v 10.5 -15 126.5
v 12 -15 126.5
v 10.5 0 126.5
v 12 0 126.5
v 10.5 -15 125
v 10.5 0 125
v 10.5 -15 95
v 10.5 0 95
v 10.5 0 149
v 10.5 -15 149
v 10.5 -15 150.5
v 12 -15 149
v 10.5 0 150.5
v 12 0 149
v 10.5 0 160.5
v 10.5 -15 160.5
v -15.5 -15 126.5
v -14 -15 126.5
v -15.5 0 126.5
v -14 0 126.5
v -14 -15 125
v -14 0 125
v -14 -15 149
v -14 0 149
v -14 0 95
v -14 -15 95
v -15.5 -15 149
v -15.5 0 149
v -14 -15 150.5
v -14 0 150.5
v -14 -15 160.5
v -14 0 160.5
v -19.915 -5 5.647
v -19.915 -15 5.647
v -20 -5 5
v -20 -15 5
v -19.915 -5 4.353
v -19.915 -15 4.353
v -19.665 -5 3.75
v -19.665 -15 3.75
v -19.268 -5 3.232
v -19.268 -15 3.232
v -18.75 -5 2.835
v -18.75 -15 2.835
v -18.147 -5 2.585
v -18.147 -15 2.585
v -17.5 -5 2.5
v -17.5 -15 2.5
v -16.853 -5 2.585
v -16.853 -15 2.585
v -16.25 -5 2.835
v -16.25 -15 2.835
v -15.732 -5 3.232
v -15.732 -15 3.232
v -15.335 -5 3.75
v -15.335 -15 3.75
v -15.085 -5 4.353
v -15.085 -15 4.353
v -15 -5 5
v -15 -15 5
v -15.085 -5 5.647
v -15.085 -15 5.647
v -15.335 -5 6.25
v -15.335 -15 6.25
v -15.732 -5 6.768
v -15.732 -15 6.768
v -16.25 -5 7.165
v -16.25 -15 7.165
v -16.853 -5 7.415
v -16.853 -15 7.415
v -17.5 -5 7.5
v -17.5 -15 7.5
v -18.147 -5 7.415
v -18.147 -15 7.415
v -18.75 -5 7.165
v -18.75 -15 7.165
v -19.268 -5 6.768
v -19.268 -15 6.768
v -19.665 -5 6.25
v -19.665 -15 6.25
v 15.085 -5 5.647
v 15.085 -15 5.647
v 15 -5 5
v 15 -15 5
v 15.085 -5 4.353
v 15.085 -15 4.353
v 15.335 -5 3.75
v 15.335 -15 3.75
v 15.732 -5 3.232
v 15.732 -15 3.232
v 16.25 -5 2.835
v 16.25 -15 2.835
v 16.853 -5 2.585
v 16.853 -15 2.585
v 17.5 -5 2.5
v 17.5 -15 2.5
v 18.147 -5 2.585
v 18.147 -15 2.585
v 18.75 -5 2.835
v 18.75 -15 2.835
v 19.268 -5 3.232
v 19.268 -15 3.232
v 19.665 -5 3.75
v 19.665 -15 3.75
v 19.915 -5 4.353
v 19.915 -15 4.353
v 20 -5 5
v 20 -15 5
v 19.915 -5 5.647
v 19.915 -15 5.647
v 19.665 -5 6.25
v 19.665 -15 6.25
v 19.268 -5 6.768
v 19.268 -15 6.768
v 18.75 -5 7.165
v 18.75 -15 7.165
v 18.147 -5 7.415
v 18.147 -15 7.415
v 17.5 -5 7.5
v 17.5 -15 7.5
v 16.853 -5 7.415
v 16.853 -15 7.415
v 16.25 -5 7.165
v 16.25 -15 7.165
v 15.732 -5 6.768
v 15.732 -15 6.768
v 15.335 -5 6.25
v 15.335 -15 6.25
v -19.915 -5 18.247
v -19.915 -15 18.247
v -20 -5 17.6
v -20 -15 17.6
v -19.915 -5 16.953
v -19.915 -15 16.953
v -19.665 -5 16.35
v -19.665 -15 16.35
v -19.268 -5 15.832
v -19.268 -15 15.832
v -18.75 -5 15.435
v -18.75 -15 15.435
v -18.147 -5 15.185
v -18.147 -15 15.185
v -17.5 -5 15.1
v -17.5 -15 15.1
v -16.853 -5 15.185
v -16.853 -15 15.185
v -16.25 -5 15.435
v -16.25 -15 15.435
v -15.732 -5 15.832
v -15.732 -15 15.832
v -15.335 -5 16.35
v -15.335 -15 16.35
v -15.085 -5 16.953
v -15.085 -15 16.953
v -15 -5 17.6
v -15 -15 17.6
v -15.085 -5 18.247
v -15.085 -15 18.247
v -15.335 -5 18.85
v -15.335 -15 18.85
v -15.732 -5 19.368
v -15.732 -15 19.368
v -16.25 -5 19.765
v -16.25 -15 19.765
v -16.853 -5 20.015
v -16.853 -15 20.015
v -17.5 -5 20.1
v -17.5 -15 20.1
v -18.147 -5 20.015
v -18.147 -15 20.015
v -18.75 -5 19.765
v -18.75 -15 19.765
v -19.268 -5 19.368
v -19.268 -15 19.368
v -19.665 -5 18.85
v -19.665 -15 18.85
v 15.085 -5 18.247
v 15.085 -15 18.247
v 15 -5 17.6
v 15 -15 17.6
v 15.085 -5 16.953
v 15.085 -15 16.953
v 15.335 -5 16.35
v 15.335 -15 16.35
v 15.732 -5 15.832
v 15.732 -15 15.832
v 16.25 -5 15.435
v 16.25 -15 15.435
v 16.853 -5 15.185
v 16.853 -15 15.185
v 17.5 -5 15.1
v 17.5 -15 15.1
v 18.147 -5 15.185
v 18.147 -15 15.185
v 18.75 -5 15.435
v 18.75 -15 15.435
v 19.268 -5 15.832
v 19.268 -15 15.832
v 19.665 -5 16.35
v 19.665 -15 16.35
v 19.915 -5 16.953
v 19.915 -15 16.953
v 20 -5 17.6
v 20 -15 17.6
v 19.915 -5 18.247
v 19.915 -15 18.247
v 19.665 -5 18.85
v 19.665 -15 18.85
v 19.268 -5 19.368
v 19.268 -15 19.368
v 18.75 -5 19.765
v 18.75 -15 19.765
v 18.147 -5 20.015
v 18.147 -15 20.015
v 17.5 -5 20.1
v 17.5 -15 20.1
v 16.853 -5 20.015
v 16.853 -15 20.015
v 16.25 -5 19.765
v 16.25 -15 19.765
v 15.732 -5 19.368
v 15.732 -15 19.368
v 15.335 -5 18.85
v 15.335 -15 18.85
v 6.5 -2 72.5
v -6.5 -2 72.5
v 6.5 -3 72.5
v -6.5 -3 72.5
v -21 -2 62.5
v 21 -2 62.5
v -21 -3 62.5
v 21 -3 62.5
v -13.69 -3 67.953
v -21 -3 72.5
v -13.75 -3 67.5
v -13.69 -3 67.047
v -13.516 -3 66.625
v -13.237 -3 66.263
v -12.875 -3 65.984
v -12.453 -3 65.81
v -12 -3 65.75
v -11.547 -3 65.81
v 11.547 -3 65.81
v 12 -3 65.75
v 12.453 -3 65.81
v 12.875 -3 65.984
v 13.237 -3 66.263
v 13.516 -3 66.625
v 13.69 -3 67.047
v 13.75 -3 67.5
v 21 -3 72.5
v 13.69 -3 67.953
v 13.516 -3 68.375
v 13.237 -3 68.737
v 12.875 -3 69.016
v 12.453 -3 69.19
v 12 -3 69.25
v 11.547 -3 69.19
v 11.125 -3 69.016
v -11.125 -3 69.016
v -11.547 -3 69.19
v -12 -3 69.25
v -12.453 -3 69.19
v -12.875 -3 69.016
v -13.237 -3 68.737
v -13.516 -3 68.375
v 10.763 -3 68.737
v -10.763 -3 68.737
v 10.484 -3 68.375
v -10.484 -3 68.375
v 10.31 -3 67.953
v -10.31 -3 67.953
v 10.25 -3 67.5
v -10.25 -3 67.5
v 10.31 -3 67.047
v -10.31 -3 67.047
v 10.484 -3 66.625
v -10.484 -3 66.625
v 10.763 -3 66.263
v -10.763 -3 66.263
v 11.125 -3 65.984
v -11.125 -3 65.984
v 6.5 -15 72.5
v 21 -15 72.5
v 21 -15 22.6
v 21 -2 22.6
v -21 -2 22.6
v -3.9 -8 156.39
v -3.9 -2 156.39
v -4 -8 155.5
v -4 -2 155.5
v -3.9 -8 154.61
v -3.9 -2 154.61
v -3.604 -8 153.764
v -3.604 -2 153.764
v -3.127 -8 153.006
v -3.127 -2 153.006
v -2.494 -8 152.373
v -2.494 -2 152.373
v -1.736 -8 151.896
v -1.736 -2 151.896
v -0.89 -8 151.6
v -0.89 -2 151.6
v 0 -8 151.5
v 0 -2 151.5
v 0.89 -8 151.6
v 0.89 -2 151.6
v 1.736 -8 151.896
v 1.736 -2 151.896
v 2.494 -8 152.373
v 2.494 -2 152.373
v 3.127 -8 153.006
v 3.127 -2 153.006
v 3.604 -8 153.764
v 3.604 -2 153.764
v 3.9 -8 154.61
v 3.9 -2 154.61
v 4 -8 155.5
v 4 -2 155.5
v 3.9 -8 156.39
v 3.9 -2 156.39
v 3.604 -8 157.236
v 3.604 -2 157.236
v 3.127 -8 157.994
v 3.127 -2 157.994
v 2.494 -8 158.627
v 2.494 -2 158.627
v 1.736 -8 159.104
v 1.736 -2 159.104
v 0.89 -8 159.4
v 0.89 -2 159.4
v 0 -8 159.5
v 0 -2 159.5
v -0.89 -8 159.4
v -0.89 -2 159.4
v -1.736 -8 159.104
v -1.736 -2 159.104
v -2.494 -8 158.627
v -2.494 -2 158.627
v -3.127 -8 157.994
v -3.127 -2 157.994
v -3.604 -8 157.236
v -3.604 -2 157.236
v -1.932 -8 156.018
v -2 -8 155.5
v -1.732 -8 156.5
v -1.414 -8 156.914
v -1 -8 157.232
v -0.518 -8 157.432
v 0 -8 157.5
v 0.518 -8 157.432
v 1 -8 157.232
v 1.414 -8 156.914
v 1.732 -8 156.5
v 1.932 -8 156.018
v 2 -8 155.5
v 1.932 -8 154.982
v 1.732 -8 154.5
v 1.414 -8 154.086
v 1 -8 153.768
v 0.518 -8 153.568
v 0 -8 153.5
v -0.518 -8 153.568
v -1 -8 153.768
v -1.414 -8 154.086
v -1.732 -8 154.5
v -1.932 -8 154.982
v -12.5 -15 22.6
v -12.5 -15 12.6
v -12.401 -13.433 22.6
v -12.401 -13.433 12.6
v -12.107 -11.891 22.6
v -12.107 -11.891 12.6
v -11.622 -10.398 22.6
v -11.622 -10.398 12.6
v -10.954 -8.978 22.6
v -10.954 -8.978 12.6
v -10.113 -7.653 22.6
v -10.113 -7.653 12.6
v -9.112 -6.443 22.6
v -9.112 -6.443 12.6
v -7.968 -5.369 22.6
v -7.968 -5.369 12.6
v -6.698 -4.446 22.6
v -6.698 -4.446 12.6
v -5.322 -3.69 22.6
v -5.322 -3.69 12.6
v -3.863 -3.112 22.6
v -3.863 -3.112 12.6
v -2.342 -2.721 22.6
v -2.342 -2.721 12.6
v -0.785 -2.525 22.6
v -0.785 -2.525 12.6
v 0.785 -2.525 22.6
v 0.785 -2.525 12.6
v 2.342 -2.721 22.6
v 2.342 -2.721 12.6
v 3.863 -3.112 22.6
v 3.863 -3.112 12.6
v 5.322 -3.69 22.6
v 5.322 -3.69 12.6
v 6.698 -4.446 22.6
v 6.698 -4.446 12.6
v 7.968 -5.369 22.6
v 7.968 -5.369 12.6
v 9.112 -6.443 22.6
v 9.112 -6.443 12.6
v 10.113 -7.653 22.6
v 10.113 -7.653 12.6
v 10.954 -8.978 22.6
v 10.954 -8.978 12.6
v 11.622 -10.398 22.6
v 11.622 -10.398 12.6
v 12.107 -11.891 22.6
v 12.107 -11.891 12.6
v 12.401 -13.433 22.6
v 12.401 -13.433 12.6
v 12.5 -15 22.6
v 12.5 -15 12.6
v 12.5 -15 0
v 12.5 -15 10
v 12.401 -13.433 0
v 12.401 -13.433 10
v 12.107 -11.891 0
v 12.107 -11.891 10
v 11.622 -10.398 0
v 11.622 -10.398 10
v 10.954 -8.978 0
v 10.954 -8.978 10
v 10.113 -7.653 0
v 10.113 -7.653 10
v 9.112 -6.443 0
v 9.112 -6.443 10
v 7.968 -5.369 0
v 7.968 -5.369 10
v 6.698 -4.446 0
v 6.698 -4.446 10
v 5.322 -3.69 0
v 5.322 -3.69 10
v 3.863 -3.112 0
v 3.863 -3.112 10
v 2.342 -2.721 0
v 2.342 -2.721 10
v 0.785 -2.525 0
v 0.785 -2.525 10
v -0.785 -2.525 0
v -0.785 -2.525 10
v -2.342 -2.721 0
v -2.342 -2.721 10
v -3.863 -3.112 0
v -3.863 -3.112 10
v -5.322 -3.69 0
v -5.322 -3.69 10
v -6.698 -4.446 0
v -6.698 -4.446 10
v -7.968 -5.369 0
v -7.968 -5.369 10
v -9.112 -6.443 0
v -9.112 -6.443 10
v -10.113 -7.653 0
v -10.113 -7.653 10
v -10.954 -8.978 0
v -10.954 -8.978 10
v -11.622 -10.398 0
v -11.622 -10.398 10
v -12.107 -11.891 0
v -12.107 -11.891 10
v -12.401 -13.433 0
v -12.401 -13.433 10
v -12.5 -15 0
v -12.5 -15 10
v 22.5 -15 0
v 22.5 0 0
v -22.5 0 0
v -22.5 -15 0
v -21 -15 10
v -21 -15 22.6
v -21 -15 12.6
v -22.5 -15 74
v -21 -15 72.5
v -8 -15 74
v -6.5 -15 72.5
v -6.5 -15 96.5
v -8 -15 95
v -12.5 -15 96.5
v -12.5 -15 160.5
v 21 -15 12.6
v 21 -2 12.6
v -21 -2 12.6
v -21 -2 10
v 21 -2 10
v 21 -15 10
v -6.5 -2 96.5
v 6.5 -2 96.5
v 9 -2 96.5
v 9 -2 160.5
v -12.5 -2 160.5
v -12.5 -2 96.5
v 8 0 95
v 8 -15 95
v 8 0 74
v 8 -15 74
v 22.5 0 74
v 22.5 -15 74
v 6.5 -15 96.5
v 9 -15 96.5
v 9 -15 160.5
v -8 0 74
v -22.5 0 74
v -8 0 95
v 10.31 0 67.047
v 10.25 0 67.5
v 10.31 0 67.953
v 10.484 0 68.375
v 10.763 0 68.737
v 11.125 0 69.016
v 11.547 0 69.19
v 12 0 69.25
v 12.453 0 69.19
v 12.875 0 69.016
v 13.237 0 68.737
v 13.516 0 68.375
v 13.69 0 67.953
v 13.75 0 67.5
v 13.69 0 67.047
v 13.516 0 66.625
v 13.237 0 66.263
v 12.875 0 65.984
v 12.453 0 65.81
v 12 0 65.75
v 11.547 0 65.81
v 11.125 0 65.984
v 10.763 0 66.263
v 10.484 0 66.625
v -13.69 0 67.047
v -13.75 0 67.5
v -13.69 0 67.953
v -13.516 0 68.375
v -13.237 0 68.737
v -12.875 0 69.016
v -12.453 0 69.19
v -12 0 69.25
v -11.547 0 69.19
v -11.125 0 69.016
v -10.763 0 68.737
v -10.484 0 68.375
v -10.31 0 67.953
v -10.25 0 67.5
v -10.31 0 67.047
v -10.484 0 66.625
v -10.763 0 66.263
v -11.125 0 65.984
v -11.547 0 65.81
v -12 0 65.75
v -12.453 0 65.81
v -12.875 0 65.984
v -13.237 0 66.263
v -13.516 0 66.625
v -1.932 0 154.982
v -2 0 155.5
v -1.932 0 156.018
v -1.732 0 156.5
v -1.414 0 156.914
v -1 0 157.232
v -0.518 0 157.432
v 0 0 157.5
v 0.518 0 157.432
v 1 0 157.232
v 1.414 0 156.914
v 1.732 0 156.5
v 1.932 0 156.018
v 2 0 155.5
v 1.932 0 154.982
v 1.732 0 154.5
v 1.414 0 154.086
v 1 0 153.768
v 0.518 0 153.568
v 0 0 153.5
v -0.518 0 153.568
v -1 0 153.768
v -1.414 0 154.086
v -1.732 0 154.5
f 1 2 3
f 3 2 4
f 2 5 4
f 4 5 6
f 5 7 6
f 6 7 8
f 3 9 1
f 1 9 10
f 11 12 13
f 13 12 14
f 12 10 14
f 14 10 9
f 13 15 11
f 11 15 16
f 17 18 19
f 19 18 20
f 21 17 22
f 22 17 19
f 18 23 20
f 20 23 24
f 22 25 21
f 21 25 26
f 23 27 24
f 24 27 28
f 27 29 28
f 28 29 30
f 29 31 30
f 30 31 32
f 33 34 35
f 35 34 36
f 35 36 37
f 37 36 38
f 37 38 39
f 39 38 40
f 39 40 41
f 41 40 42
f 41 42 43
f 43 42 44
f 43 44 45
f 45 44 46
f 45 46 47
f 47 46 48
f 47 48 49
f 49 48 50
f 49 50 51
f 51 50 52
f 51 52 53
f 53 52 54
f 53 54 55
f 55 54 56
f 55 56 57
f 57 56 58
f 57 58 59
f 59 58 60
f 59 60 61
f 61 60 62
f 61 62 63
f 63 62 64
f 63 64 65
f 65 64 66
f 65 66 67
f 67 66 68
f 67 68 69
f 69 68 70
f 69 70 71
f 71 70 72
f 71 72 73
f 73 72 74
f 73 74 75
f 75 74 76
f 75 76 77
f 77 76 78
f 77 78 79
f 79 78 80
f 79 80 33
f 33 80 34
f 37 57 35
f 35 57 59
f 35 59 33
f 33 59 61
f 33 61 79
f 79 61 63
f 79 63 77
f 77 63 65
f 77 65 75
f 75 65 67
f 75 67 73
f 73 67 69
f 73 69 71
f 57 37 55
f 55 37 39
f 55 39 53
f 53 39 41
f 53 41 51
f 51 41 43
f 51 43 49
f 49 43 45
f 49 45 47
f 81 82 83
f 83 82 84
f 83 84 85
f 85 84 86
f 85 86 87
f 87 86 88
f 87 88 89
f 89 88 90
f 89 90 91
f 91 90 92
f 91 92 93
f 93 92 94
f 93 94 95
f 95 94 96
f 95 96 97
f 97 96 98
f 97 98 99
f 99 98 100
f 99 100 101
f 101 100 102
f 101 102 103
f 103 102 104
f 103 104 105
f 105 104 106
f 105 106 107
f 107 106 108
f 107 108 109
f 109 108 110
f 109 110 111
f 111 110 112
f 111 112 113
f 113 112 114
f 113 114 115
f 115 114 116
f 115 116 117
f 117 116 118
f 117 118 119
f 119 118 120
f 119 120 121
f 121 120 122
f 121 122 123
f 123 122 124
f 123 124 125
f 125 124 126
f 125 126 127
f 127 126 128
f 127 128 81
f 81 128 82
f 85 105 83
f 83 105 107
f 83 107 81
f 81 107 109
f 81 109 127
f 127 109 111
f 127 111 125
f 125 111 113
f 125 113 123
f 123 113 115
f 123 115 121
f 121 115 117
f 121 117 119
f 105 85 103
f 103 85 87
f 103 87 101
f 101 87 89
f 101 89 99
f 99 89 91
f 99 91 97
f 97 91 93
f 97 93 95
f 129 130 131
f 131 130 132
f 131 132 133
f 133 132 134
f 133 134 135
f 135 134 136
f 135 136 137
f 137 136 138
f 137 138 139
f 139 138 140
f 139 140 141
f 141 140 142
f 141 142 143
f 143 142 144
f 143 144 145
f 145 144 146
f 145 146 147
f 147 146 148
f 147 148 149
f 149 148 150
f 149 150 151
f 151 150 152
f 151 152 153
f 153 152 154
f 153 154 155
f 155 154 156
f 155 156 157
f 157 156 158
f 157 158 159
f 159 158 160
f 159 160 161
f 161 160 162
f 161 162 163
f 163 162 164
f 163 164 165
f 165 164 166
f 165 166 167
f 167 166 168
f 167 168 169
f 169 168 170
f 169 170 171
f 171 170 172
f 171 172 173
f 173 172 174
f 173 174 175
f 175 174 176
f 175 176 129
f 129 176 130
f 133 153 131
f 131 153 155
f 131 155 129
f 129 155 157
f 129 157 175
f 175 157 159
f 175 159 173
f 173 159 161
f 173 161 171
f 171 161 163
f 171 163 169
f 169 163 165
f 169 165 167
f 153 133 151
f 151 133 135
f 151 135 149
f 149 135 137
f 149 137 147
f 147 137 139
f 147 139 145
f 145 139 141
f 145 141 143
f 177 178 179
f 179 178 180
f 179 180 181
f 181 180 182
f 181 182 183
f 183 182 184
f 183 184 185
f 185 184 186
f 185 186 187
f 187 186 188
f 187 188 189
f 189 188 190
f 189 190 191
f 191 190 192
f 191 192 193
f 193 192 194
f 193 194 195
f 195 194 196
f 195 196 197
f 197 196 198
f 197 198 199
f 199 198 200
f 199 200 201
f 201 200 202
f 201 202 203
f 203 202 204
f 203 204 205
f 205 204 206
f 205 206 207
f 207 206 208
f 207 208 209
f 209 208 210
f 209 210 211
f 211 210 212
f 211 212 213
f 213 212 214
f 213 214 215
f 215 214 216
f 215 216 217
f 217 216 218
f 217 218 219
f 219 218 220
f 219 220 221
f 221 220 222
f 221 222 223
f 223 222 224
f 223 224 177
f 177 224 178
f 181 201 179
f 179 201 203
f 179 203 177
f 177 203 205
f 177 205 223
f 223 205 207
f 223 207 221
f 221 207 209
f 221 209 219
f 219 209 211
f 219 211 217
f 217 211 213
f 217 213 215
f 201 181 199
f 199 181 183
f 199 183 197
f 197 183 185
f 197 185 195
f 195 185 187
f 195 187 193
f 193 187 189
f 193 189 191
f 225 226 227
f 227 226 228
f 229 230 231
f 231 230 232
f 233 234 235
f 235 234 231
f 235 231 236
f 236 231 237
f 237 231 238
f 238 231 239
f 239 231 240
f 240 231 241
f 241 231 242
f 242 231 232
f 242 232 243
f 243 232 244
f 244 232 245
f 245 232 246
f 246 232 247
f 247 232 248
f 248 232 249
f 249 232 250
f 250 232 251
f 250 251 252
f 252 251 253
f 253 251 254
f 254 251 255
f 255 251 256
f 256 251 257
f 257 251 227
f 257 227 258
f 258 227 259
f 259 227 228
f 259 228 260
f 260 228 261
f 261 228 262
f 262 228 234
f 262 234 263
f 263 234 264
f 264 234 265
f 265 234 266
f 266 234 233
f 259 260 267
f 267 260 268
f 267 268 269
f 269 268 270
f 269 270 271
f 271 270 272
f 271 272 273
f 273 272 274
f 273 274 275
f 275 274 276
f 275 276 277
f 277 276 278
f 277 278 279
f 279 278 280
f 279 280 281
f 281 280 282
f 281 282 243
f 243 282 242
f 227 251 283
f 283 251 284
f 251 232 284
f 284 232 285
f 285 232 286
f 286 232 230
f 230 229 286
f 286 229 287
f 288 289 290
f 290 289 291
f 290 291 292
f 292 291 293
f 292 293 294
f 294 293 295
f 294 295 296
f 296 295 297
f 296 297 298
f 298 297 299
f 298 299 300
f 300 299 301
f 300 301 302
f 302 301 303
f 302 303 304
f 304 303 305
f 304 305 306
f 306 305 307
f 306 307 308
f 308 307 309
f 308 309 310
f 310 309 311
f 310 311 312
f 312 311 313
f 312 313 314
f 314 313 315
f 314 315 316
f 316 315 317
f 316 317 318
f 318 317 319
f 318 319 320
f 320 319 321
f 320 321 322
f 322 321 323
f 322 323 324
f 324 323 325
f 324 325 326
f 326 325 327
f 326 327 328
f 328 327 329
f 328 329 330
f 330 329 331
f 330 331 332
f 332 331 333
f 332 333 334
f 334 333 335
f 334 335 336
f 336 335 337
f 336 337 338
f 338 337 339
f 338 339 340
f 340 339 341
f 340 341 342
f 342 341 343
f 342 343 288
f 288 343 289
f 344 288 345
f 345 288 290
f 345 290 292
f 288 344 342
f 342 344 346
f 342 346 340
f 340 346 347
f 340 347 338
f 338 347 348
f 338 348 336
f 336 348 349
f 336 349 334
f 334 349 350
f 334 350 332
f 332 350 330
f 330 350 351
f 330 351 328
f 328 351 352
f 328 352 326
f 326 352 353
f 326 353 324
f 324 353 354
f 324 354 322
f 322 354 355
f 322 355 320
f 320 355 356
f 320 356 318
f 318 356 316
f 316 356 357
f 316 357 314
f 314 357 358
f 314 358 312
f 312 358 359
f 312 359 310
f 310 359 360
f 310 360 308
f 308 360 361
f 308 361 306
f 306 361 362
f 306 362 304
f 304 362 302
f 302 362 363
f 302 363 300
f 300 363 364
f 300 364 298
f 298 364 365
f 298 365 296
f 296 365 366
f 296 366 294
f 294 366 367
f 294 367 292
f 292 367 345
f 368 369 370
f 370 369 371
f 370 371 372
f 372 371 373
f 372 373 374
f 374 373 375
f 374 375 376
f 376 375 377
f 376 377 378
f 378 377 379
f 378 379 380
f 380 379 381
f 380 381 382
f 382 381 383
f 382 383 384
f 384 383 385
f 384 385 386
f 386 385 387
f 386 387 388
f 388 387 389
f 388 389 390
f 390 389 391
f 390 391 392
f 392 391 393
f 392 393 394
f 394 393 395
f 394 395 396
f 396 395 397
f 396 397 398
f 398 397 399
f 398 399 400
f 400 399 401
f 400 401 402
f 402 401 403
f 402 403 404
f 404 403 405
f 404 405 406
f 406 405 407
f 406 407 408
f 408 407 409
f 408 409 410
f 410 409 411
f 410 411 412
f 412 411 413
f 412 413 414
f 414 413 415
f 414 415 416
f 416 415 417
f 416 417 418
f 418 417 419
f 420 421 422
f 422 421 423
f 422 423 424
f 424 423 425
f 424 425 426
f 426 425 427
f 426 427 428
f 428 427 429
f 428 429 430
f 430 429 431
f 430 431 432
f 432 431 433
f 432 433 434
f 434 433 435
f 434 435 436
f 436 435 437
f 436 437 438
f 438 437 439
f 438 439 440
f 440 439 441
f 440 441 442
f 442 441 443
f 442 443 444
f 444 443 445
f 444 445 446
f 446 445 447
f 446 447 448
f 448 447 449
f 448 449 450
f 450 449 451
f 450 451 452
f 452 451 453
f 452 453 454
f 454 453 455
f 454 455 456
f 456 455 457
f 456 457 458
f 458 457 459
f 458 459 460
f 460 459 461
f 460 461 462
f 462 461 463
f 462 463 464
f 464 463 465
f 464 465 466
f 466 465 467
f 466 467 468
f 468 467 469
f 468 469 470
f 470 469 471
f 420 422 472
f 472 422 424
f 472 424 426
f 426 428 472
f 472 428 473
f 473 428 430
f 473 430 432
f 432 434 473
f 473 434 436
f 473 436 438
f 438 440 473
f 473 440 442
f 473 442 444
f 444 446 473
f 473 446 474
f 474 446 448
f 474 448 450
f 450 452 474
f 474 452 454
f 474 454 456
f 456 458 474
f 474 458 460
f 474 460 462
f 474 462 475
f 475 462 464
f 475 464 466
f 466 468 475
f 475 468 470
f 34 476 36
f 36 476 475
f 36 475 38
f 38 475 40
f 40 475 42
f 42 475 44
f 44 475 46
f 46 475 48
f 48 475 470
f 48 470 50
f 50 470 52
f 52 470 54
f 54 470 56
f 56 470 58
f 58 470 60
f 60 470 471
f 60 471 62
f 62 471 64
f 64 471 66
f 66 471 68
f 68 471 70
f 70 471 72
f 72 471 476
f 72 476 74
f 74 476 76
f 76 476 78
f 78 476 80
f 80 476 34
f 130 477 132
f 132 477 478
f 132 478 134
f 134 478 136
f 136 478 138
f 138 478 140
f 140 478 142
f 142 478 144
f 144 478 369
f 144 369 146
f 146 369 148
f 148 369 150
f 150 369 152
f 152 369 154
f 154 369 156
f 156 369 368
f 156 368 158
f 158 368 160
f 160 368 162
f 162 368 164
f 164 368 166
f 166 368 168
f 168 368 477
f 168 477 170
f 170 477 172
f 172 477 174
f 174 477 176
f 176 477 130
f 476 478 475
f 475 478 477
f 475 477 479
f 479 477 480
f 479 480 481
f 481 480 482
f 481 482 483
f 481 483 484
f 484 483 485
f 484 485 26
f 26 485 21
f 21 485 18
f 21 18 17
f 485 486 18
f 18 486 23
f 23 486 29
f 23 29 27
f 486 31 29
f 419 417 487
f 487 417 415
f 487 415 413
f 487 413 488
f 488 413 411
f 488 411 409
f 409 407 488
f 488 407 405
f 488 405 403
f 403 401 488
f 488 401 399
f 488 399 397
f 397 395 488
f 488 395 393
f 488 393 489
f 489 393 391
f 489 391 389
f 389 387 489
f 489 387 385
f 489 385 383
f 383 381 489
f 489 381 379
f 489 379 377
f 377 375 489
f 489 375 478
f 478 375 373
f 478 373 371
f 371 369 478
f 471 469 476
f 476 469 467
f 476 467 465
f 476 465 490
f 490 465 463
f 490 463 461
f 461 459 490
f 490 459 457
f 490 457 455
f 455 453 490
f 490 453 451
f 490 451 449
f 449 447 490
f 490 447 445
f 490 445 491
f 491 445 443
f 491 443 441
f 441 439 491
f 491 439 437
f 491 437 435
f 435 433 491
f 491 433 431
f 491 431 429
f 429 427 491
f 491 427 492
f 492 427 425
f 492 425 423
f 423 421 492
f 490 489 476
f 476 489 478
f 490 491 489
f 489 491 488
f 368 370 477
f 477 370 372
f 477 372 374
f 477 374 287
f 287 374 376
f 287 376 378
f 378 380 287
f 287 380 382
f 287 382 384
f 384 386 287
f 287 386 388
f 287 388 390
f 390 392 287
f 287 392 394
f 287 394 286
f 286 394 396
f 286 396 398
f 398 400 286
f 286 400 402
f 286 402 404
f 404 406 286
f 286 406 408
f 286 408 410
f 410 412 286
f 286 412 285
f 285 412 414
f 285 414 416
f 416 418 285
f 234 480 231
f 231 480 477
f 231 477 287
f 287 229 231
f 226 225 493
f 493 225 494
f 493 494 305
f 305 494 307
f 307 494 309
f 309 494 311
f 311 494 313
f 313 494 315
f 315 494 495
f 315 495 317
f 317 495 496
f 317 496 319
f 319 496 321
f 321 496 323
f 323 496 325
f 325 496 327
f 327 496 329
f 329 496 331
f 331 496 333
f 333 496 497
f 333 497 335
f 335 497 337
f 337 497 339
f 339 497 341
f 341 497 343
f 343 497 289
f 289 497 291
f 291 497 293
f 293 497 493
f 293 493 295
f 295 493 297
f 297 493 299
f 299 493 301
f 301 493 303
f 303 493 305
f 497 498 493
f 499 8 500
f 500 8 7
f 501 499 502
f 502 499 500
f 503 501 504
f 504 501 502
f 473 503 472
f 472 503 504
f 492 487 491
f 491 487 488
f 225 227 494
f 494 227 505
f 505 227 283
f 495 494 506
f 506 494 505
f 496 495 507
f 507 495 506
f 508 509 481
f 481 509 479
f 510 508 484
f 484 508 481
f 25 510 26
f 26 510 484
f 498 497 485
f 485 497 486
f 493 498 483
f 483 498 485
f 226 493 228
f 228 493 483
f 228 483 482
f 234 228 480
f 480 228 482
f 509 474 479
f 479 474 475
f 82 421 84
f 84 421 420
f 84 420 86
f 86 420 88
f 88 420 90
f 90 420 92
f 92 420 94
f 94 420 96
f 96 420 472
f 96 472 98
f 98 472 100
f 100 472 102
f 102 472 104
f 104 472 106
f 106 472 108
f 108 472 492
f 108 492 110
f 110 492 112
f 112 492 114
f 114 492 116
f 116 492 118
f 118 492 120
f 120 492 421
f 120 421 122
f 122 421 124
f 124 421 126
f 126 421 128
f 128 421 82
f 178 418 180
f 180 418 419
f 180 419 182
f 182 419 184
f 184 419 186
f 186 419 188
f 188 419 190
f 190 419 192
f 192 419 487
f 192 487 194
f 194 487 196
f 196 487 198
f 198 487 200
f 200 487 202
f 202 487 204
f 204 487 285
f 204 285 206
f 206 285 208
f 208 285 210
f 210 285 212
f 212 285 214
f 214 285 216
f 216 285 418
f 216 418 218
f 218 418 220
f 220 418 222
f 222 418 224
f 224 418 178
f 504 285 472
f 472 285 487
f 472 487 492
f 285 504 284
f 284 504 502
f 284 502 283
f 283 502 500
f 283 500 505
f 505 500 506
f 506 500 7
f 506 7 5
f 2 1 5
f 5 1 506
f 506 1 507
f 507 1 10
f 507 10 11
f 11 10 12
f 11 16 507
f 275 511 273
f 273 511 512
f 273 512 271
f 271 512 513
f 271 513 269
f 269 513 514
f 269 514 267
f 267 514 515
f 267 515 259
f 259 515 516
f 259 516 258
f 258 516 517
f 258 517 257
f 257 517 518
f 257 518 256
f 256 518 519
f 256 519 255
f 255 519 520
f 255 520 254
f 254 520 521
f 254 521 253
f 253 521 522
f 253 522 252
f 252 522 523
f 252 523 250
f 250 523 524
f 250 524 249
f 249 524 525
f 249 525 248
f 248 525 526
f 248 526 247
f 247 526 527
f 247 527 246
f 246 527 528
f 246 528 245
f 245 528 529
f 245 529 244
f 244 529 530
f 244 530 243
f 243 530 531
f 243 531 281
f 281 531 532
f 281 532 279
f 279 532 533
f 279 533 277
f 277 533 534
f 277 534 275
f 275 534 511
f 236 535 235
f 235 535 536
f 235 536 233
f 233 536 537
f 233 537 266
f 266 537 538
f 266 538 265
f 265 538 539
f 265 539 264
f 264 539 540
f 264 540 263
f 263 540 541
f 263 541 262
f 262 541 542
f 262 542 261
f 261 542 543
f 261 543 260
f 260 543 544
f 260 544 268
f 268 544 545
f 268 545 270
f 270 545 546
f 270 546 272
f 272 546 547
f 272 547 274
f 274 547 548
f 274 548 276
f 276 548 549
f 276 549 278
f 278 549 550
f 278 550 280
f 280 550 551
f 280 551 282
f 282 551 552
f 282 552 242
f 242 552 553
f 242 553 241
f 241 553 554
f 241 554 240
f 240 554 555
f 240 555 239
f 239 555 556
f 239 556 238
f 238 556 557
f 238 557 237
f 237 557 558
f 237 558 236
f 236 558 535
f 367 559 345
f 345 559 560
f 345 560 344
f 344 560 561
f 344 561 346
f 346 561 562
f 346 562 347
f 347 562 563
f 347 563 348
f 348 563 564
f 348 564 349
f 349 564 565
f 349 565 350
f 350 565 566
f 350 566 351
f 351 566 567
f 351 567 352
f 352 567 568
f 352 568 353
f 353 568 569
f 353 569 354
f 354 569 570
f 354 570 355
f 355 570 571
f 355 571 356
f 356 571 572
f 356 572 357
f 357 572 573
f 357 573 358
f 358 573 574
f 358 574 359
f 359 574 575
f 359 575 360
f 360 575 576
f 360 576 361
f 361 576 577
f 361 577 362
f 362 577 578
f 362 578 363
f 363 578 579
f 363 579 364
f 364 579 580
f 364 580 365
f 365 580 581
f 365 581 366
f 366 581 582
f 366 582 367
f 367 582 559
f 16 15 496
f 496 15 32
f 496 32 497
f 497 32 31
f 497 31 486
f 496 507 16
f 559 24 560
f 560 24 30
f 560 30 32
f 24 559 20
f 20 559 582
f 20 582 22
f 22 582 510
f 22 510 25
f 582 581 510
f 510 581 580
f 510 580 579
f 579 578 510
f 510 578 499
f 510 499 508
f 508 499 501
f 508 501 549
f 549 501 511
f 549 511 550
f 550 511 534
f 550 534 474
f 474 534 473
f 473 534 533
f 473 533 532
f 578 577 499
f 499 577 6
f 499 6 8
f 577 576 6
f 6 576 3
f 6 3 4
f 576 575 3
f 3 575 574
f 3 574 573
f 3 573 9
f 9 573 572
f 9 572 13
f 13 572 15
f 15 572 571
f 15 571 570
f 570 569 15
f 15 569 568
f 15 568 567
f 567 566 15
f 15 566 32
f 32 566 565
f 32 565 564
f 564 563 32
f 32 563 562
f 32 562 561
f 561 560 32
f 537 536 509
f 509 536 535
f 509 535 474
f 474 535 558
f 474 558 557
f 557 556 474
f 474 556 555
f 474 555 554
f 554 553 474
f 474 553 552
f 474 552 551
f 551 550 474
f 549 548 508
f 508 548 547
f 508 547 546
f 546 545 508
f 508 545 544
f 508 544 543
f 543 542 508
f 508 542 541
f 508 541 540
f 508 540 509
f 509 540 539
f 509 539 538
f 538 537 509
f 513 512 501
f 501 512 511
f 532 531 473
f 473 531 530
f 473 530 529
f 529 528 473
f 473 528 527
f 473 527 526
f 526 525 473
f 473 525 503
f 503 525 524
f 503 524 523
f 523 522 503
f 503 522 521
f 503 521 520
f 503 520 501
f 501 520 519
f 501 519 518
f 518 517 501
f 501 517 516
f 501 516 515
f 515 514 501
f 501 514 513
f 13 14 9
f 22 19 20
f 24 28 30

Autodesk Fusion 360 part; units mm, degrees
sketch "スケッチ1" plane through (0, 0, 0) normal (0, 1, 0) x (1, 0, 0)
  line L0 (-21, 0) -> (21, 0)
  line L1 (21, 0) -> (21, -72.5)
  line L2 (21, -72.5) -> (-21, -72.5)
  line L3 (-21, -72.5) -> (-21, 0)
  line L4 (6.5, -72.5) -> (-6.5, -72.5)
  line L5 (-6.5, -72.5) -> (-6.5, -96.5)
  line L6 (-6.5, -96.5) -> (6.5, -96.5)
  line L7 (6.5, -96.5) -> (6.5, -72.5)
  line L8 (-12.5, -160.5) -> (9, -160.5)
  line L9 (9, -160.5) -> (9, -96.5)
  line L10 (9, -96.5) -> (-12.5, -96.5)
  line L11 (-12.5, -96.5) -> (-12.5, -160.5)
  line L12 (-21, -67.5) -> (21, -67.5) construction
  circle A0 centre (-12, -67.5) radius 1.75
  circle A1 centre (12, -67.5) radius 1.75
  line L13 (0, -1.75) -> (0, -22.5)
  circle A2 centre (0, -155.5) radius 2
  dimension "d1" = 42
  dimension "d2" = 5
  dimension "d3" = 3.5
  dimension "d4" = 3.5
  dimension "d5" = 24
  dimension "d6" = 72.5
  dimension "d7" = 13
  dimension "d8" = 2.5
  dimension "d9" = 6
  dimension "d10" = 24
  dimension "d11" = 64
  dimension "d12" = 4
  dimension "d13" = 5
extrude "押し出し1" add sketch "スケッチ1" against normal blind 2 makes body 1
sketch "スケッチ2" plane through (0, 0, 0) normal (0, 1, 0) x (-1, 0, 0)
  circle A0 centre (12, 67.5) radius 1.75
  circle A1 centre (-12, 67.5) radius 1.75
  circle A2 centre (0, 155.5) radius 2
  line L0 (6.5, 72.5) -> (6.5, 96.5)
  line L1 (6.5, 96.5) -> (12.5, 96.5)
  line L2 (12.5, 96.5) -> (12.5, 160.5)
  line L3 (12.5, 160.5) -> (-9, 160.5)
  line L4 (-9, 160.5) -> (-9, 96.5)
  line L5 (-9, 96.5) -> (-6.5, 96.5)
  line L6 (-6.5, 96.5) -> (-6.5, 72.5)
  line L7 (-6.5, 72.5) -> (-21, 72.5)
  line L8 (-21, 72.5) -> (-21, 0)
  line L9 (-21, 0) -> (21, 0)
  line L10 (21, 0) -> (21, 72.5)
  line L11 (21, 72.5) -> (6.5, 72.5)
  line L12 (-21, 0) -> (-22.5, 0)
  line L13 (-22.5, 0) -> (-22.5, 74)
  line L14 (-22.5, 74) -> (-8, 74)
  line L15 (-8, 74) -> (-8, 95)
  line L16 (-8, 95) -> (-10.5, 95)
  line L17 (-10.5, 95) -> (-10.5, 160.5)
  line L18 (-10.5, 160.5) -> (-9, 160.5)
  line L19 (12.5, 160.5) -> (14, 160.5)
  line L20 (14, 160.5) -> (14, 95)
  line L21 (14, 95) -> (8, 95)
  line L22 (8, 95) -> (8, 74)
  line L23 (8, 74) -> (22.5, 74)
  line L24 (22.5, 74) -> (22.5, 0)
  line L25 (22.5, 0) -> (21, 0)
  dimension "d16" = 1.5
  dimension "d17" = 1.5
  dimension "d18" = 1.5
  dimension "d19" = 1.5
  dimension "d20" = 1.5
  dimension "d22" = 1.5
  dimension "d23" = 1.5
  dimension "d24" = 1.5
  dimension "d25" = 1.5
  dimension "d26" = 1.5
extrude "押し出し2" add sketch "スケッチ2" against normal blind 15 contours L0 L1 L2 L10 L11 L19 L20 L21 L22 L23 L24 L25 | L4 L5 L6 L7 L8 L12 L13 L14 L15 L16 L17 L18 bodies 1
sketch "スケッチ3" plane through (0, -2, 0) normal (0, -1, 0) x (1, 0, 0)
  circle A0 centre (-12, 67.5) radius 1.75
  circle A1 centre (12, 67.5) radius 1.75
  circle A2 centre (0, 155.5) radius 2
  line L0 (-6.5, 96.5) -> (-6.5, 72.5)
  line L1 (-6.5, 72.5) -> (-21, 72.5)
  line L2 (-21, 72.5) -> (-21, 0)
  line L3 (-21, 0) -> (21, 0)
  line L4 (21, 0) -> (21, 72.5)
  line L5 (21, 72.5) -> (6.5, 72.5)
  line L6 (6.5, 72.5) -> (6.5, 96.5)
  line L7 (6.5, 96.5) -> (9, 96.5)
  line L8 (9, 96.5) -> (9, 160.5)
  line L9 (9, 160.5) -> (-12.5, 160.5)
  line L10 (-12.5, 160.5) -> (-12.5, 96.5)
  line L11 (-12.5, 96.5) -> (-6.5, 96.5)
  line L12 (-21, 0) -> (21, 0)
  line L13 (21, 0) -> (21, 10)
  line L14 (21, 10) -> (-21, 10)
  line L15 (-21, 10) -> (-21, 0)
  line L16 (-21, 12.6) -> (21, 12.6)
  line L17 (21, 12.6) -> (21, 22.6)
  line L18 (21, 22.6) -> (-21, 22.6)
  line L19 (-21, 22.6) -> (-21, 12.6)
  dimension "d29" = 10
  dimension "d30" = 10
  dimension "d31" = 2.6
extrude "押し出し3" add sketch "スケッチ3" along normal up to surface (13 mm away) contours L2 L4 L16 L17 L18 L19 | L2 L3 L4 L12 L13 L14 L15 bodies 1
sketch "スケッチ4" plane through (0, 0, 0) normal (0, 0, -1) x (1, 0, 0)
  line L0 (-22.5, 0) -> (22.5, 0)
  line L1 (22.5, 0) -> (22.5, 15)
  line L2 (22.5, 15) -> (-22.5, 15)
  line L3 (-22.5, 15) -> (-22.5, 0)
  arc A0 (-12.5, 15) -> (12.5, 15) centre (0, 15) ccw
  dimension "d34" = 25
extrude "押し出し4" cut sketch "スケッチ4" against normal up to surface (22.6 mm away) contours L2 A0 bodies 1
sketch "スケッチ10" plane through (0, -2, 0) normal (0, -1, 0) x (1, 0, 0)
  circle A0 centre (12, 67.5) radius 1.75
  circle A1 centre (0, 155.5) radius 2
  circle A2 centre (-12, 67.5) radius 1.75
  line L0 (-21, 22.6) -> (21, 22.6)
  line L1 (21, 22.6) -> (21, 72.5)
  line L2 (21, 72.5) -> (6.5, 72.5)
  line L3 (6.5, 72.5) -> (6.5, 96.5)
  line L4 (6.5, 96.5) -> (9, 96.5)
  line L5 (9, 96.5) -> (9, 160.5)
  line L6 (9, 160.5) -> (-12.5, 160.5)
  line L7 (-12.5, 160.5) -> (-12.5, 96.5)
  line L8 (-12.5, 96.5) -> (-6.5, 96.5)
  line L9 (-6.5, 96.5) -> (-6.5, 72.5)
  line L10 (-6.5, 72.5) -> (-21, 72.5)
  line L11 (-21, 72.5) -> (-21, 22.6)
  circle A3 centre (0, 155.5) radius 4
  dimension "d48" = 8
extrude "押し出し9" add sketch "スケッチ10" along normal blind 6 contours A3 bodies 1
sketch "スケッチ9" plane through (0, -2, 0) normal (0, -1, 0) x (1, 0, 0)
  circle A0 centre (12, 67.5) radius 1.75
  circle A1 centre (-12, 67.5) radius 1.75
  line L0 (-21, 22.6) -> (21, 22.6)
  line L1 (21, 22.6) -> (21, 72.5)
  line L2 (21, 72.5) -> (6.5, 72.5)
  line L3 (6.5, 72.5) -> (6.5, 96.5)
  line L4 (6.5, 96.5) -> (9, 96.5)
  line L5 (9, 96.5) -> (9, 160.5)
  line L6 (9, 160.5) -> (-12.5, 160.5)
  line L7 (-12.5, 160.5) -> (-12.5, 96.5)
  line L8 (-12.5, 96.5) -> (-6.5, 96.5)
  line L9 (-6.5, 96.5) -> (-6.5, 72.5)
  line L10 (-6.5, 72.5) -> (-21, 72.5)
  line L11 (-21, 72.5) -> (-21, 22.6)
  line L12 (-21, 72.5) -> (21, 72.5)
  line L13 (21, 72.5) -> (21, 62.5)
  line L14 (21, 62.5) -> (-21, 62.5)
  line L15 (-21, 62.5) -> (-21, 72.5)
  circle A2 centre (0, 155.5) radius 4
  dimension "d45" = 10
extrude "押し出し8" add sketch "スケッチ9" along normal blind 1 contours L1 L2 L10 L11 L12 L13 L14 L15 bodies 1
ref_plane "作業平面1" through (0, -20, 80.25) normal (0, -1, 0) x (0, 0, -1)
sketch "スケッチ6" plane through (0, -20, 0) normal (0, -1, 0) x (-1, 0, 0)
  line L0 (-22.5, 0) -> (22.5, 0)
  line L1 (22.5, 0) -> (22.5, -22.6)
  line L2 (22.5, -22.6) -> (-22.5, -22.6)
  line L3 (-22.5, -22.6) -> (-22.5, 0)
  line L4 (-22.5, 0) -> (-22.5, -74)
  line L5 (-12.5, -22.6) -> (-21, -22.6)
  line L6 (-12.5, 0) -> (-22.5, 0)
  line L7 (22.5, -74) -> (22.5, 0)
extrude "押し出し5" add sketch "スケッチ6" along normal blind 15 separate body makes body 2
sketch "スケッチ7" plane through (0, 0, 0) normal (0, 0, -1) x (1, 0, 0)
  line L0 (-22.5, 20) -> (22.5, 20)
  line L1 (22.5, 20) -> (22.5, 35)
  line L2 (22.5, 35) -> (-22.5, 35)
  line L3 (-22.5, 35) -> (-22.5, 20)
  arc A0 (12.5, 20) -> (-12.5, 20) centre (0, 20) ccw
  dimension "d40" = 25
extrude "押し出し6" cut sketch "スケッチ7" against normal up to surface (22.6 mm away) contours L0 A0 bodies 2
sketch "スケッチ8" plane through (0, -20, 0) normal (0, 1, 0) x (-1, 0, 0)
  line L0 (-12.5, 0) -> (-12.5, 22.6)
  line L1 (-12.5, 22.6) -> (-22.5, 22.6)
  line L2 (-22.5, 22.6) -> (-22.5, 0)
  line L3 (-22.5, 0) -> (-12.5, 0)
  line L4 (21, 12.6) -> (-21, 12.6)
  line L5 (-21, 12.6) -> (-21, 10)
  line L6 (-21, 10) -> (21, 10)
  line L7 (21, 10) -> (21, 12.6)
  point P0 (21, 12.6)
  point P1 (21, 10)
  point P2 (-21, 12.6)
extrude "押し出し7" cut sketch "スケッチ8" against normal blind 13 contours L0 L4 L5 L6 | L0 L4 L6 L7 bodies 2
sketch "スケッチ11" plane through (0, -15, 0) normal (0, -1, 0) x (1, 0, 0)
  line L0 (-12.5, 0) -> (-12.5, 10)
  line L1 (-12.5, 10) -> (-21, 10)
  line L2 (-21, 10) -> (-21, 12.6)
  line L3 (-21, 12.6) -> (-12.5, 12.6)
  line L4 (-12.5, 12.6) -> (-12.5, 22.6)
  line L5 (-12.5, 22.6) -> (-21, 22.6)
  line L6 (-21, 22.6) -> (-21, 72.5)
  line L7 (-21, 72.5) -> (-6.5, 72.5)
  line L8 (-6.5, 72.5) -> (-6.5, 96.5)
  line L9 (-6.5, 96.5) -> (-12.5, 96.5)
  line L10 (-12.5, 96.5) -> (-12.5, 160.5)
  line L11 (-12.5, 160.5) -> (-14, 160.5)
  line L12 (-14, 160.5) -> (-14, 95)
  line L13 (-14, 95) -> (-8, 95)
  line L14 (-8, 95) -> (-8, 74)
  line L15 (-8, 74) -> (-22.5, 74)
  line L16 (-22.5, 74) -> (-22.5, 0)
  line L17 (-22.5, 0) -> (-12.5, 0)
  line L18 (-17.5, 17.6) -> (17.5, 17.6) construction
  line L19 (17.5, 17.6) -> (17.5, 5) construction
  line L20 (17.5, 5) -> (-17.5, 5) construction
  line L21 (-17.5, 5) -> (-17.5, 17.6) construction
  line L22 (22.5, 0) -> (22.5, 74)
  circle A0 centre (-17.5, 17.6) radius 2.5
  circle A1 centre (17.5, 17.6) radius 2.5
  circle A2 centre (-17.5, 5) radius 2.5
  circle A3 centre (17.5, 5) radius 2.5
  dimension "d51" = 5
  dimension "d52" = 5
  dimension "d53" = 5
  dimension "d54" = 5
  dimension "d55" = 5
  dimension "d56" = 5
  dimension "d57" = 5
  dimension "d58" = 5
extrude "押し出し10" cut sketch "スケッチ11" against normal blind 10 contours A0 | A1 | A2 | A3 bodies 1
sketch "スケッチ12" plane through (0, -20, 0) normal (0, 1, 0) x (-1, 0, 0)
  line L0 (12.5, 12.6) -> (21, 12.6)
  line L1 (21, 12.6) -> (21, 10)
  line L2 (21, 10) -> (12.5, 10)
  line L3 (12.5, 10) -> (12.5, 0)
  line L4 (12.5, 0) -> (22.5, 0)
  line L5 (22.5, 0) -> (22.5, 22.6)
  line L6 (22.5, 22.6) -> (12.5, 22.6)
  line L7 (12.5, 22.6) -> (12.5, 12.6)
  circle A0 centre (17.5, 17.6) radius 2.5
  circle A1 centre (17.5, 17.6) radius 2.5
  circle A2 centre (17.5, 5) radius 2.5
  circle A3 centre (-17.5, 17.6) radius 2.5
  circle A4 centre (-17.5, 5) radius 2.5
  circle A5 centre (-17.5, 17.6) radius 2.25
  circle A6 centre (-17.5, 5) radius 2.25
  circle A7 centre (17.5, 17.6) radius 2.25
  circle A8 centre (17.5, 5) radius 2.25
  dimension "d63" = 4.5
  dimension "d64" = 4.5
  dimension "d65" = 4.5
  dimension "d66" = 4.5
extrude "押し出し12" add sketch "スケッチ12" along normal blind 6 contours A5 | A6 | A7 | A8 bodies 2
sketch "スケッチ14" plane through (0, 0, 0) normal (0, 1, 0) x (-1, 0, 0)
  circle A0 centre (0, 155.5) radius 2
  circle A1 centre (12, 67.5) radius 1.75
  circle A2 centre (-12, 67.5) radius 1.75
  line L0 (14, 160.5) -> (-10.5, 160.5)
  line L1 (-10.5, 160.5) -> (-10.5, 95)
  line L2 (-10.5, 95) -> (-8, 95)
  line L3 (-8, 95) -> (-8, 74)
  line L4 (-8, 74) -> (-22.5, 74)
  line L5 (-22.5, 74) -> (-22.5, 0)
  line L6 (-22.5, 0) -> (22.5, 0)
  line L7 (22.5, 0) -> (22.5, 74)
  line L8 (22.5, 74) -> (8, 74)
  line L9 (8, 74) -> (8, 95)
  line L10 (8, 95) -> (14, 95)
  line L11 (14, 95) -> (14, 160.5)
  line L12 (14, 149) -> (15.5, 149)
  line L13 (15.5, 149) -> (14, 150.5)
  line L14 (14, 126.5) -> (15.5, 126.5)
  line L15 (15.5, 126.5) -> (14, 125)
  line L16 (-10.5, 150.5) -> (-12, 149)
  line L17 (-12, 149) -> (-10.5, 149)
  line L18 (-10.5, 126.5) -> (-12, 126.5)
  line L19 (-12, 126.5) -> (-10.5, 125)
  dimension "d79" = 10
  dimension "d80" = 10
  dimension "d81" = 1.5
  dimension "d82" = 1.5
  dimension "d83" = 22.5
  dimension "d84" = 1.5
  dimension "d85" = 1.5
  dimension "d86" = 1.5
  dimension "d88" = 1.5
  dimension "d89" = 1.5
extrude "押し出し13" add sketch "スケッチ14" against normal up to surface (15 mm away) contours L11 L12 L13 | L1 L16 L17 | L11 L14 L15 | L1 L18 L19 bodies 1
hidden bodies 2
